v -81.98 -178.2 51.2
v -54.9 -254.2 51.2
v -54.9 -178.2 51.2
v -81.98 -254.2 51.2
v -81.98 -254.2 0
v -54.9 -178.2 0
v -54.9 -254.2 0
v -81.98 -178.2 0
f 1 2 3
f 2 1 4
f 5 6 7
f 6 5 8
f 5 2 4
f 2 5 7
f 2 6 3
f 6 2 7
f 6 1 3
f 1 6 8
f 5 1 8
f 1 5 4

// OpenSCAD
translate([-68.440, -216.200, 0]) rotate([0, 0, -0.000]) translate([-13.540, -38.000, 0]) cube([27.080, 76.000, 51.200]);
